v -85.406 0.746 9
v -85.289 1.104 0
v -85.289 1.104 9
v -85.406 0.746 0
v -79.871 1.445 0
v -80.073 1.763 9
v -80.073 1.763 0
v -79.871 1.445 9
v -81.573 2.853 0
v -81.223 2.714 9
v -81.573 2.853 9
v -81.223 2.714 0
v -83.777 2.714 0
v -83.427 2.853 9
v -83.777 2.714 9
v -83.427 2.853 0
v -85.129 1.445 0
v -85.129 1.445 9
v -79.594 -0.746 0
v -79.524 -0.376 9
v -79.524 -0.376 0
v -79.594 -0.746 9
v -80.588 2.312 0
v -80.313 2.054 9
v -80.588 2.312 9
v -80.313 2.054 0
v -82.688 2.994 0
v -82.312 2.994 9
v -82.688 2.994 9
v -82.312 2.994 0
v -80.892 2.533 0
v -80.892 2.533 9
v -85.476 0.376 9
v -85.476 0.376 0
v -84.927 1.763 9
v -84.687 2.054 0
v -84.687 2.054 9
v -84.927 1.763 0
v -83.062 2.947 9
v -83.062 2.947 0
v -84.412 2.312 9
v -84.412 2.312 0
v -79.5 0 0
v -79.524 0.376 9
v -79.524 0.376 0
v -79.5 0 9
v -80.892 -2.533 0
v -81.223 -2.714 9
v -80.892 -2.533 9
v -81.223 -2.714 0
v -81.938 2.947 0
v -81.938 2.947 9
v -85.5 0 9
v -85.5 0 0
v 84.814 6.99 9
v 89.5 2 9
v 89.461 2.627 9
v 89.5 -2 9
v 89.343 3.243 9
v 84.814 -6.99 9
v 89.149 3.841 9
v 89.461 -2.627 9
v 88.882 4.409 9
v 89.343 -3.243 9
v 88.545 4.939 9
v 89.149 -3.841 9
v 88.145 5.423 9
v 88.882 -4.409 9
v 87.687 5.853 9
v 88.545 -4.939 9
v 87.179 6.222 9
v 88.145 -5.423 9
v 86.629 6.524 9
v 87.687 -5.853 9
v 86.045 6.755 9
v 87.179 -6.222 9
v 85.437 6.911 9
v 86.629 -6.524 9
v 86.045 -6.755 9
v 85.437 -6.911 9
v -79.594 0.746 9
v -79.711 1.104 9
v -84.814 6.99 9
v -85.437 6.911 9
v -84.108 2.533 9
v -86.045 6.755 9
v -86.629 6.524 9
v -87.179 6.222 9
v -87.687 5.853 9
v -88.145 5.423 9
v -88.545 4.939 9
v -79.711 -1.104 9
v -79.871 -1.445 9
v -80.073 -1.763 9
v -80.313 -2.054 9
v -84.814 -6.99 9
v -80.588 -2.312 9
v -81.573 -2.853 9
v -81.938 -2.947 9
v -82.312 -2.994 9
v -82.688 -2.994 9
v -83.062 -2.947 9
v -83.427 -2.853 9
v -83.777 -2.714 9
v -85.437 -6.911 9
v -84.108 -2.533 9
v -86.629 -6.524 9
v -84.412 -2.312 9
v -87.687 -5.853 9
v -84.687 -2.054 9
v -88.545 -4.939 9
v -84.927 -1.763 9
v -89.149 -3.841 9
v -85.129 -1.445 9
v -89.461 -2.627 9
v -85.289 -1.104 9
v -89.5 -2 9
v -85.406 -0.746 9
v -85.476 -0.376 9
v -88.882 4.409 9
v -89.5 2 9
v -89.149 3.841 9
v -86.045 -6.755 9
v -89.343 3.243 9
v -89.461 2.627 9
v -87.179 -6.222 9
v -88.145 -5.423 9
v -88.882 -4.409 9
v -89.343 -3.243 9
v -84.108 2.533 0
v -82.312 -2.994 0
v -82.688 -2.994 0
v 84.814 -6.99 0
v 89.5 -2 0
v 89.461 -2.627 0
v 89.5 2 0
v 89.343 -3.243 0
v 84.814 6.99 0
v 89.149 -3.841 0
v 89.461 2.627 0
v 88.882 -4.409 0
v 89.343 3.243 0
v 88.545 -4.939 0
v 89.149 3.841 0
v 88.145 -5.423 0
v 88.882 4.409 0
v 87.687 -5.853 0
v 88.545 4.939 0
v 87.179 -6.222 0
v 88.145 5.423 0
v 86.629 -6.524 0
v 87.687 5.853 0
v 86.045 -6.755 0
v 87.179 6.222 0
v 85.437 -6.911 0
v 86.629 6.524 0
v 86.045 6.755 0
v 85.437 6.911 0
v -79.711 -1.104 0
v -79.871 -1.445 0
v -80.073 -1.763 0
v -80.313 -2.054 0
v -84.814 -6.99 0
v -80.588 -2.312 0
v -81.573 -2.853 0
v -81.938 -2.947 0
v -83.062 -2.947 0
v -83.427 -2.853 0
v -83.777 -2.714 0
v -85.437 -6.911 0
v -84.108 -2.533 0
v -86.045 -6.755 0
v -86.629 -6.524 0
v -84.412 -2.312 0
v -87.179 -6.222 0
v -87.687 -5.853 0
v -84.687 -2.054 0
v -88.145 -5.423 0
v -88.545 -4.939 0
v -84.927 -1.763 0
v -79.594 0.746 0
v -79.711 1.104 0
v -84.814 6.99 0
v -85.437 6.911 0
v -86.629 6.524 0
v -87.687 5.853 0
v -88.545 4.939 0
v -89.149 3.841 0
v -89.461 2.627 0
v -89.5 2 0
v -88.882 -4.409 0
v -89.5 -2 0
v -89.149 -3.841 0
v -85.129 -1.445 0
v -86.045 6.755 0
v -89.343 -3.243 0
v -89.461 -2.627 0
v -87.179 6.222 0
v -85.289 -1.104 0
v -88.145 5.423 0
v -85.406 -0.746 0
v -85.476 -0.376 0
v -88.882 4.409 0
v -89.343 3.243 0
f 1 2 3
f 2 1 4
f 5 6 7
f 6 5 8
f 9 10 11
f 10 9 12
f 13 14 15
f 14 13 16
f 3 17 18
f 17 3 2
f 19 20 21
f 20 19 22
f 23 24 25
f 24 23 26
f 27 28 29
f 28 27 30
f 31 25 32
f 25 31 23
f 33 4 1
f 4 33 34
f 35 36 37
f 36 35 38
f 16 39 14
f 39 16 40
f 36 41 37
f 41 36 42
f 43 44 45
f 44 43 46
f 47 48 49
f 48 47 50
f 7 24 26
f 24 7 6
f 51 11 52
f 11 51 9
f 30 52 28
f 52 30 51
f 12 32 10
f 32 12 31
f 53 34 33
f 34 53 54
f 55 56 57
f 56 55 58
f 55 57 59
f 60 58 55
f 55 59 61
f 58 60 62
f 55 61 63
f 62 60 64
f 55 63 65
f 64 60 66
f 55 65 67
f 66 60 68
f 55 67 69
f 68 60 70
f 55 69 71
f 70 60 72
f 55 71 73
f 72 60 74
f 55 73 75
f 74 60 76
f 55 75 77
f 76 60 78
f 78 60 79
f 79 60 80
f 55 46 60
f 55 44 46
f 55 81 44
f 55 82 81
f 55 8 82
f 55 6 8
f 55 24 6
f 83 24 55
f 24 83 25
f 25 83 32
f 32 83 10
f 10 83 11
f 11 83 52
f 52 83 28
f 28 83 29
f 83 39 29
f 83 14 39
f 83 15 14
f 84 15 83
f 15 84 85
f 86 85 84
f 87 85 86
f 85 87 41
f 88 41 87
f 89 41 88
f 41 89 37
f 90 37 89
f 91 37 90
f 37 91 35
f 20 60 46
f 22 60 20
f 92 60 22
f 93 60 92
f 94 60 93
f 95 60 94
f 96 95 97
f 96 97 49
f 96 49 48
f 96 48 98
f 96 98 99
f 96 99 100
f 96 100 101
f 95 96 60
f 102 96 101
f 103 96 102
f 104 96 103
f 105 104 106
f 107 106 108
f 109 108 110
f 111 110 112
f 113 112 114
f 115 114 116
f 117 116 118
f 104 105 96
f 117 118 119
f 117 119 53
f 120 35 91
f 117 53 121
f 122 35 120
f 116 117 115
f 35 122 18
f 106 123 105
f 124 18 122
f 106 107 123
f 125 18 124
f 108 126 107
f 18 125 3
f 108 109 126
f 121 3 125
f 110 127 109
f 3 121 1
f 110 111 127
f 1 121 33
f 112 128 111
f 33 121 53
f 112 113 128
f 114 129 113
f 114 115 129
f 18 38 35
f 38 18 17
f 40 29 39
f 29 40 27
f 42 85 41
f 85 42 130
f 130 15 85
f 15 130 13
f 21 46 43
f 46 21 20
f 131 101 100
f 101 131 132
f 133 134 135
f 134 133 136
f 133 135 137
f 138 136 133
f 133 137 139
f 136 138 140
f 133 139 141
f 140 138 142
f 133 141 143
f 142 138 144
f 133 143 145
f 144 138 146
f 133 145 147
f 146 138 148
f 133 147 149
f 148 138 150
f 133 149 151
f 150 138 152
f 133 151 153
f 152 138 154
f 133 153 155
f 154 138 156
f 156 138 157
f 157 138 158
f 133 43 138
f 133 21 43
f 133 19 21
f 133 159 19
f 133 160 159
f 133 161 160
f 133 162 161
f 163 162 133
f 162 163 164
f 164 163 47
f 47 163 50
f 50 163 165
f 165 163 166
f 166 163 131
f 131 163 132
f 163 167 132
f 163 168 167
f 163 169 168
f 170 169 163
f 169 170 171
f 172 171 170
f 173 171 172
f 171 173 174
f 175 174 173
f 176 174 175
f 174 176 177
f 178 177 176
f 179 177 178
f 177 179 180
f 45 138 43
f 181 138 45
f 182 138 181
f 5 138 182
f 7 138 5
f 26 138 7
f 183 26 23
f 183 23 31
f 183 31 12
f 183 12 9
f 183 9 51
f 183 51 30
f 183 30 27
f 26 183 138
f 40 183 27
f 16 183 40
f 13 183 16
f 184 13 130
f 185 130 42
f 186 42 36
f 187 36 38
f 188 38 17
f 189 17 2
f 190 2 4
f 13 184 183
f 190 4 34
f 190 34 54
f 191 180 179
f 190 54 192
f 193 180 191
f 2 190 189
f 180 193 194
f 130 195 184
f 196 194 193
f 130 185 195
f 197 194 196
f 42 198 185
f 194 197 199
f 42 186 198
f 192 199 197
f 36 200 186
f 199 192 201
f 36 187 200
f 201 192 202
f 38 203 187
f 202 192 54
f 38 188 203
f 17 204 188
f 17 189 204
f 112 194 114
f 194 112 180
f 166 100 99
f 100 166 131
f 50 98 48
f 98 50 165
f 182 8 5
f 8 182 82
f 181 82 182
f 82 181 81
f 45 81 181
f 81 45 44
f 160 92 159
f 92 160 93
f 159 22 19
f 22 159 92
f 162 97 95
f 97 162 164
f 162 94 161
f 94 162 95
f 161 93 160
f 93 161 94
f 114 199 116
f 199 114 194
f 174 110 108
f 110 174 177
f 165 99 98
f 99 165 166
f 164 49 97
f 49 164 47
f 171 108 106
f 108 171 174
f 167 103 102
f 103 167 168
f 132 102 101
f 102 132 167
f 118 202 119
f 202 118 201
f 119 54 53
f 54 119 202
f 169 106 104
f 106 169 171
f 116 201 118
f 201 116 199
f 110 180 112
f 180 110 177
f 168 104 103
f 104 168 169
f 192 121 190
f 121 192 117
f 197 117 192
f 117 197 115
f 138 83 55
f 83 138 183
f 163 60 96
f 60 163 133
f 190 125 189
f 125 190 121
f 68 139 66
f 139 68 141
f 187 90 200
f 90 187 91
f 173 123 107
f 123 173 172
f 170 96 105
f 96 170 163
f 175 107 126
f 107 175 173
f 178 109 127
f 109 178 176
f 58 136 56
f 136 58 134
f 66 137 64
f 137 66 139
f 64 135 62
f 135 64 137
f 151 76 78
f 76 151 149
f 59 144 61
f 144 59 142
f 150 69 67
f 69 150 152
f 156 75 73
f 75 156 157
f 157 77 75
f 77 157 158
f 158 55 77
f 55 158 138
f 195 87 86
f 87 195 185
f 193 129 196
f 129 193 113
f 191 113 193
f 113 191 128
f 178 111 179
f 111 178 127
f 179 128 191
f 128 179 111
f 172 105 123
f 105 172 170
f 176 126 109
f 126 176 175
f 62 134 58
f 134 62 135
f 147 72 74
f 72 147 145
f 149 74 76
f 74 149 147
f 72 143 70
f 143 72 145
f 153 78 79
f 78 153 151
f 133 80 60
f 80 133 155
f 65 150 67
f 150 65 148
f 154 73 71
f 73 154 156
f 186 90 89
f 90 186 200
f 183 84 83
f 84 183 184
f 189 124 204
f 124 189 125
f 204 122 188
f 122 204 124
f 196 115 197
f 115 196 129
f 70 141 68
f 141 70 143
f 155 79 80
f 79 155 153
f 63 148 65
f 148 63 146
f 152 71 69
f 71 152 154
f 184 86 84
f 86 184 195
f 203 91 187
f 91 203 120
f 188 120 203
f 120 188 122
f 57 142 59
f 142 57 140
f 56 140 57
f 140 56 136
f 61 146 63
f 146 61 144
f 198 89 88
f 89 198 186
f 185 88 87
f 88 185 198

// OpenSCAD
$fn = 50;


difference() {
	union() {
		hull() {
			translate(v = [-84.5000000000, 2.0000000000, 0]) {
				cylinder(h = 9, r = 5);
			}
			translate(v = [84.5000000000, 2.0000000000, 0]) {
				cylinder(h = 9, r = 5);
			}
			translate(v = [-84.5000000000, -2.0000000000, 0]) {
				cylinder(h = 9, r = 5);
			}
			translate(v = [84.5000000000, -2.0000000000, 0]) {
				cylinder(h = 9, r = 5);
			}
		}
	}
	union() {
		translate(v = [-82.5000000000, 0.0000000000, 0]) {
			cylinder(h = 9, r = 3.0000000000);
		}
		translate(v = [-82.5000000000, 0.0000000000, 0]) {
			cylinder(h = 9, r = 1.5000000000);
		}
		translate(v = [-82.5000000000, 0.0000000000, 0]) {
			cylinder(h = 9, r = 1.5000000000);
		}
		translate(v = [-82.5000000000, 0.0000000000, 0]) {
			cylinder(h = 9, r = 1.5000000000);
		}
	}
}
